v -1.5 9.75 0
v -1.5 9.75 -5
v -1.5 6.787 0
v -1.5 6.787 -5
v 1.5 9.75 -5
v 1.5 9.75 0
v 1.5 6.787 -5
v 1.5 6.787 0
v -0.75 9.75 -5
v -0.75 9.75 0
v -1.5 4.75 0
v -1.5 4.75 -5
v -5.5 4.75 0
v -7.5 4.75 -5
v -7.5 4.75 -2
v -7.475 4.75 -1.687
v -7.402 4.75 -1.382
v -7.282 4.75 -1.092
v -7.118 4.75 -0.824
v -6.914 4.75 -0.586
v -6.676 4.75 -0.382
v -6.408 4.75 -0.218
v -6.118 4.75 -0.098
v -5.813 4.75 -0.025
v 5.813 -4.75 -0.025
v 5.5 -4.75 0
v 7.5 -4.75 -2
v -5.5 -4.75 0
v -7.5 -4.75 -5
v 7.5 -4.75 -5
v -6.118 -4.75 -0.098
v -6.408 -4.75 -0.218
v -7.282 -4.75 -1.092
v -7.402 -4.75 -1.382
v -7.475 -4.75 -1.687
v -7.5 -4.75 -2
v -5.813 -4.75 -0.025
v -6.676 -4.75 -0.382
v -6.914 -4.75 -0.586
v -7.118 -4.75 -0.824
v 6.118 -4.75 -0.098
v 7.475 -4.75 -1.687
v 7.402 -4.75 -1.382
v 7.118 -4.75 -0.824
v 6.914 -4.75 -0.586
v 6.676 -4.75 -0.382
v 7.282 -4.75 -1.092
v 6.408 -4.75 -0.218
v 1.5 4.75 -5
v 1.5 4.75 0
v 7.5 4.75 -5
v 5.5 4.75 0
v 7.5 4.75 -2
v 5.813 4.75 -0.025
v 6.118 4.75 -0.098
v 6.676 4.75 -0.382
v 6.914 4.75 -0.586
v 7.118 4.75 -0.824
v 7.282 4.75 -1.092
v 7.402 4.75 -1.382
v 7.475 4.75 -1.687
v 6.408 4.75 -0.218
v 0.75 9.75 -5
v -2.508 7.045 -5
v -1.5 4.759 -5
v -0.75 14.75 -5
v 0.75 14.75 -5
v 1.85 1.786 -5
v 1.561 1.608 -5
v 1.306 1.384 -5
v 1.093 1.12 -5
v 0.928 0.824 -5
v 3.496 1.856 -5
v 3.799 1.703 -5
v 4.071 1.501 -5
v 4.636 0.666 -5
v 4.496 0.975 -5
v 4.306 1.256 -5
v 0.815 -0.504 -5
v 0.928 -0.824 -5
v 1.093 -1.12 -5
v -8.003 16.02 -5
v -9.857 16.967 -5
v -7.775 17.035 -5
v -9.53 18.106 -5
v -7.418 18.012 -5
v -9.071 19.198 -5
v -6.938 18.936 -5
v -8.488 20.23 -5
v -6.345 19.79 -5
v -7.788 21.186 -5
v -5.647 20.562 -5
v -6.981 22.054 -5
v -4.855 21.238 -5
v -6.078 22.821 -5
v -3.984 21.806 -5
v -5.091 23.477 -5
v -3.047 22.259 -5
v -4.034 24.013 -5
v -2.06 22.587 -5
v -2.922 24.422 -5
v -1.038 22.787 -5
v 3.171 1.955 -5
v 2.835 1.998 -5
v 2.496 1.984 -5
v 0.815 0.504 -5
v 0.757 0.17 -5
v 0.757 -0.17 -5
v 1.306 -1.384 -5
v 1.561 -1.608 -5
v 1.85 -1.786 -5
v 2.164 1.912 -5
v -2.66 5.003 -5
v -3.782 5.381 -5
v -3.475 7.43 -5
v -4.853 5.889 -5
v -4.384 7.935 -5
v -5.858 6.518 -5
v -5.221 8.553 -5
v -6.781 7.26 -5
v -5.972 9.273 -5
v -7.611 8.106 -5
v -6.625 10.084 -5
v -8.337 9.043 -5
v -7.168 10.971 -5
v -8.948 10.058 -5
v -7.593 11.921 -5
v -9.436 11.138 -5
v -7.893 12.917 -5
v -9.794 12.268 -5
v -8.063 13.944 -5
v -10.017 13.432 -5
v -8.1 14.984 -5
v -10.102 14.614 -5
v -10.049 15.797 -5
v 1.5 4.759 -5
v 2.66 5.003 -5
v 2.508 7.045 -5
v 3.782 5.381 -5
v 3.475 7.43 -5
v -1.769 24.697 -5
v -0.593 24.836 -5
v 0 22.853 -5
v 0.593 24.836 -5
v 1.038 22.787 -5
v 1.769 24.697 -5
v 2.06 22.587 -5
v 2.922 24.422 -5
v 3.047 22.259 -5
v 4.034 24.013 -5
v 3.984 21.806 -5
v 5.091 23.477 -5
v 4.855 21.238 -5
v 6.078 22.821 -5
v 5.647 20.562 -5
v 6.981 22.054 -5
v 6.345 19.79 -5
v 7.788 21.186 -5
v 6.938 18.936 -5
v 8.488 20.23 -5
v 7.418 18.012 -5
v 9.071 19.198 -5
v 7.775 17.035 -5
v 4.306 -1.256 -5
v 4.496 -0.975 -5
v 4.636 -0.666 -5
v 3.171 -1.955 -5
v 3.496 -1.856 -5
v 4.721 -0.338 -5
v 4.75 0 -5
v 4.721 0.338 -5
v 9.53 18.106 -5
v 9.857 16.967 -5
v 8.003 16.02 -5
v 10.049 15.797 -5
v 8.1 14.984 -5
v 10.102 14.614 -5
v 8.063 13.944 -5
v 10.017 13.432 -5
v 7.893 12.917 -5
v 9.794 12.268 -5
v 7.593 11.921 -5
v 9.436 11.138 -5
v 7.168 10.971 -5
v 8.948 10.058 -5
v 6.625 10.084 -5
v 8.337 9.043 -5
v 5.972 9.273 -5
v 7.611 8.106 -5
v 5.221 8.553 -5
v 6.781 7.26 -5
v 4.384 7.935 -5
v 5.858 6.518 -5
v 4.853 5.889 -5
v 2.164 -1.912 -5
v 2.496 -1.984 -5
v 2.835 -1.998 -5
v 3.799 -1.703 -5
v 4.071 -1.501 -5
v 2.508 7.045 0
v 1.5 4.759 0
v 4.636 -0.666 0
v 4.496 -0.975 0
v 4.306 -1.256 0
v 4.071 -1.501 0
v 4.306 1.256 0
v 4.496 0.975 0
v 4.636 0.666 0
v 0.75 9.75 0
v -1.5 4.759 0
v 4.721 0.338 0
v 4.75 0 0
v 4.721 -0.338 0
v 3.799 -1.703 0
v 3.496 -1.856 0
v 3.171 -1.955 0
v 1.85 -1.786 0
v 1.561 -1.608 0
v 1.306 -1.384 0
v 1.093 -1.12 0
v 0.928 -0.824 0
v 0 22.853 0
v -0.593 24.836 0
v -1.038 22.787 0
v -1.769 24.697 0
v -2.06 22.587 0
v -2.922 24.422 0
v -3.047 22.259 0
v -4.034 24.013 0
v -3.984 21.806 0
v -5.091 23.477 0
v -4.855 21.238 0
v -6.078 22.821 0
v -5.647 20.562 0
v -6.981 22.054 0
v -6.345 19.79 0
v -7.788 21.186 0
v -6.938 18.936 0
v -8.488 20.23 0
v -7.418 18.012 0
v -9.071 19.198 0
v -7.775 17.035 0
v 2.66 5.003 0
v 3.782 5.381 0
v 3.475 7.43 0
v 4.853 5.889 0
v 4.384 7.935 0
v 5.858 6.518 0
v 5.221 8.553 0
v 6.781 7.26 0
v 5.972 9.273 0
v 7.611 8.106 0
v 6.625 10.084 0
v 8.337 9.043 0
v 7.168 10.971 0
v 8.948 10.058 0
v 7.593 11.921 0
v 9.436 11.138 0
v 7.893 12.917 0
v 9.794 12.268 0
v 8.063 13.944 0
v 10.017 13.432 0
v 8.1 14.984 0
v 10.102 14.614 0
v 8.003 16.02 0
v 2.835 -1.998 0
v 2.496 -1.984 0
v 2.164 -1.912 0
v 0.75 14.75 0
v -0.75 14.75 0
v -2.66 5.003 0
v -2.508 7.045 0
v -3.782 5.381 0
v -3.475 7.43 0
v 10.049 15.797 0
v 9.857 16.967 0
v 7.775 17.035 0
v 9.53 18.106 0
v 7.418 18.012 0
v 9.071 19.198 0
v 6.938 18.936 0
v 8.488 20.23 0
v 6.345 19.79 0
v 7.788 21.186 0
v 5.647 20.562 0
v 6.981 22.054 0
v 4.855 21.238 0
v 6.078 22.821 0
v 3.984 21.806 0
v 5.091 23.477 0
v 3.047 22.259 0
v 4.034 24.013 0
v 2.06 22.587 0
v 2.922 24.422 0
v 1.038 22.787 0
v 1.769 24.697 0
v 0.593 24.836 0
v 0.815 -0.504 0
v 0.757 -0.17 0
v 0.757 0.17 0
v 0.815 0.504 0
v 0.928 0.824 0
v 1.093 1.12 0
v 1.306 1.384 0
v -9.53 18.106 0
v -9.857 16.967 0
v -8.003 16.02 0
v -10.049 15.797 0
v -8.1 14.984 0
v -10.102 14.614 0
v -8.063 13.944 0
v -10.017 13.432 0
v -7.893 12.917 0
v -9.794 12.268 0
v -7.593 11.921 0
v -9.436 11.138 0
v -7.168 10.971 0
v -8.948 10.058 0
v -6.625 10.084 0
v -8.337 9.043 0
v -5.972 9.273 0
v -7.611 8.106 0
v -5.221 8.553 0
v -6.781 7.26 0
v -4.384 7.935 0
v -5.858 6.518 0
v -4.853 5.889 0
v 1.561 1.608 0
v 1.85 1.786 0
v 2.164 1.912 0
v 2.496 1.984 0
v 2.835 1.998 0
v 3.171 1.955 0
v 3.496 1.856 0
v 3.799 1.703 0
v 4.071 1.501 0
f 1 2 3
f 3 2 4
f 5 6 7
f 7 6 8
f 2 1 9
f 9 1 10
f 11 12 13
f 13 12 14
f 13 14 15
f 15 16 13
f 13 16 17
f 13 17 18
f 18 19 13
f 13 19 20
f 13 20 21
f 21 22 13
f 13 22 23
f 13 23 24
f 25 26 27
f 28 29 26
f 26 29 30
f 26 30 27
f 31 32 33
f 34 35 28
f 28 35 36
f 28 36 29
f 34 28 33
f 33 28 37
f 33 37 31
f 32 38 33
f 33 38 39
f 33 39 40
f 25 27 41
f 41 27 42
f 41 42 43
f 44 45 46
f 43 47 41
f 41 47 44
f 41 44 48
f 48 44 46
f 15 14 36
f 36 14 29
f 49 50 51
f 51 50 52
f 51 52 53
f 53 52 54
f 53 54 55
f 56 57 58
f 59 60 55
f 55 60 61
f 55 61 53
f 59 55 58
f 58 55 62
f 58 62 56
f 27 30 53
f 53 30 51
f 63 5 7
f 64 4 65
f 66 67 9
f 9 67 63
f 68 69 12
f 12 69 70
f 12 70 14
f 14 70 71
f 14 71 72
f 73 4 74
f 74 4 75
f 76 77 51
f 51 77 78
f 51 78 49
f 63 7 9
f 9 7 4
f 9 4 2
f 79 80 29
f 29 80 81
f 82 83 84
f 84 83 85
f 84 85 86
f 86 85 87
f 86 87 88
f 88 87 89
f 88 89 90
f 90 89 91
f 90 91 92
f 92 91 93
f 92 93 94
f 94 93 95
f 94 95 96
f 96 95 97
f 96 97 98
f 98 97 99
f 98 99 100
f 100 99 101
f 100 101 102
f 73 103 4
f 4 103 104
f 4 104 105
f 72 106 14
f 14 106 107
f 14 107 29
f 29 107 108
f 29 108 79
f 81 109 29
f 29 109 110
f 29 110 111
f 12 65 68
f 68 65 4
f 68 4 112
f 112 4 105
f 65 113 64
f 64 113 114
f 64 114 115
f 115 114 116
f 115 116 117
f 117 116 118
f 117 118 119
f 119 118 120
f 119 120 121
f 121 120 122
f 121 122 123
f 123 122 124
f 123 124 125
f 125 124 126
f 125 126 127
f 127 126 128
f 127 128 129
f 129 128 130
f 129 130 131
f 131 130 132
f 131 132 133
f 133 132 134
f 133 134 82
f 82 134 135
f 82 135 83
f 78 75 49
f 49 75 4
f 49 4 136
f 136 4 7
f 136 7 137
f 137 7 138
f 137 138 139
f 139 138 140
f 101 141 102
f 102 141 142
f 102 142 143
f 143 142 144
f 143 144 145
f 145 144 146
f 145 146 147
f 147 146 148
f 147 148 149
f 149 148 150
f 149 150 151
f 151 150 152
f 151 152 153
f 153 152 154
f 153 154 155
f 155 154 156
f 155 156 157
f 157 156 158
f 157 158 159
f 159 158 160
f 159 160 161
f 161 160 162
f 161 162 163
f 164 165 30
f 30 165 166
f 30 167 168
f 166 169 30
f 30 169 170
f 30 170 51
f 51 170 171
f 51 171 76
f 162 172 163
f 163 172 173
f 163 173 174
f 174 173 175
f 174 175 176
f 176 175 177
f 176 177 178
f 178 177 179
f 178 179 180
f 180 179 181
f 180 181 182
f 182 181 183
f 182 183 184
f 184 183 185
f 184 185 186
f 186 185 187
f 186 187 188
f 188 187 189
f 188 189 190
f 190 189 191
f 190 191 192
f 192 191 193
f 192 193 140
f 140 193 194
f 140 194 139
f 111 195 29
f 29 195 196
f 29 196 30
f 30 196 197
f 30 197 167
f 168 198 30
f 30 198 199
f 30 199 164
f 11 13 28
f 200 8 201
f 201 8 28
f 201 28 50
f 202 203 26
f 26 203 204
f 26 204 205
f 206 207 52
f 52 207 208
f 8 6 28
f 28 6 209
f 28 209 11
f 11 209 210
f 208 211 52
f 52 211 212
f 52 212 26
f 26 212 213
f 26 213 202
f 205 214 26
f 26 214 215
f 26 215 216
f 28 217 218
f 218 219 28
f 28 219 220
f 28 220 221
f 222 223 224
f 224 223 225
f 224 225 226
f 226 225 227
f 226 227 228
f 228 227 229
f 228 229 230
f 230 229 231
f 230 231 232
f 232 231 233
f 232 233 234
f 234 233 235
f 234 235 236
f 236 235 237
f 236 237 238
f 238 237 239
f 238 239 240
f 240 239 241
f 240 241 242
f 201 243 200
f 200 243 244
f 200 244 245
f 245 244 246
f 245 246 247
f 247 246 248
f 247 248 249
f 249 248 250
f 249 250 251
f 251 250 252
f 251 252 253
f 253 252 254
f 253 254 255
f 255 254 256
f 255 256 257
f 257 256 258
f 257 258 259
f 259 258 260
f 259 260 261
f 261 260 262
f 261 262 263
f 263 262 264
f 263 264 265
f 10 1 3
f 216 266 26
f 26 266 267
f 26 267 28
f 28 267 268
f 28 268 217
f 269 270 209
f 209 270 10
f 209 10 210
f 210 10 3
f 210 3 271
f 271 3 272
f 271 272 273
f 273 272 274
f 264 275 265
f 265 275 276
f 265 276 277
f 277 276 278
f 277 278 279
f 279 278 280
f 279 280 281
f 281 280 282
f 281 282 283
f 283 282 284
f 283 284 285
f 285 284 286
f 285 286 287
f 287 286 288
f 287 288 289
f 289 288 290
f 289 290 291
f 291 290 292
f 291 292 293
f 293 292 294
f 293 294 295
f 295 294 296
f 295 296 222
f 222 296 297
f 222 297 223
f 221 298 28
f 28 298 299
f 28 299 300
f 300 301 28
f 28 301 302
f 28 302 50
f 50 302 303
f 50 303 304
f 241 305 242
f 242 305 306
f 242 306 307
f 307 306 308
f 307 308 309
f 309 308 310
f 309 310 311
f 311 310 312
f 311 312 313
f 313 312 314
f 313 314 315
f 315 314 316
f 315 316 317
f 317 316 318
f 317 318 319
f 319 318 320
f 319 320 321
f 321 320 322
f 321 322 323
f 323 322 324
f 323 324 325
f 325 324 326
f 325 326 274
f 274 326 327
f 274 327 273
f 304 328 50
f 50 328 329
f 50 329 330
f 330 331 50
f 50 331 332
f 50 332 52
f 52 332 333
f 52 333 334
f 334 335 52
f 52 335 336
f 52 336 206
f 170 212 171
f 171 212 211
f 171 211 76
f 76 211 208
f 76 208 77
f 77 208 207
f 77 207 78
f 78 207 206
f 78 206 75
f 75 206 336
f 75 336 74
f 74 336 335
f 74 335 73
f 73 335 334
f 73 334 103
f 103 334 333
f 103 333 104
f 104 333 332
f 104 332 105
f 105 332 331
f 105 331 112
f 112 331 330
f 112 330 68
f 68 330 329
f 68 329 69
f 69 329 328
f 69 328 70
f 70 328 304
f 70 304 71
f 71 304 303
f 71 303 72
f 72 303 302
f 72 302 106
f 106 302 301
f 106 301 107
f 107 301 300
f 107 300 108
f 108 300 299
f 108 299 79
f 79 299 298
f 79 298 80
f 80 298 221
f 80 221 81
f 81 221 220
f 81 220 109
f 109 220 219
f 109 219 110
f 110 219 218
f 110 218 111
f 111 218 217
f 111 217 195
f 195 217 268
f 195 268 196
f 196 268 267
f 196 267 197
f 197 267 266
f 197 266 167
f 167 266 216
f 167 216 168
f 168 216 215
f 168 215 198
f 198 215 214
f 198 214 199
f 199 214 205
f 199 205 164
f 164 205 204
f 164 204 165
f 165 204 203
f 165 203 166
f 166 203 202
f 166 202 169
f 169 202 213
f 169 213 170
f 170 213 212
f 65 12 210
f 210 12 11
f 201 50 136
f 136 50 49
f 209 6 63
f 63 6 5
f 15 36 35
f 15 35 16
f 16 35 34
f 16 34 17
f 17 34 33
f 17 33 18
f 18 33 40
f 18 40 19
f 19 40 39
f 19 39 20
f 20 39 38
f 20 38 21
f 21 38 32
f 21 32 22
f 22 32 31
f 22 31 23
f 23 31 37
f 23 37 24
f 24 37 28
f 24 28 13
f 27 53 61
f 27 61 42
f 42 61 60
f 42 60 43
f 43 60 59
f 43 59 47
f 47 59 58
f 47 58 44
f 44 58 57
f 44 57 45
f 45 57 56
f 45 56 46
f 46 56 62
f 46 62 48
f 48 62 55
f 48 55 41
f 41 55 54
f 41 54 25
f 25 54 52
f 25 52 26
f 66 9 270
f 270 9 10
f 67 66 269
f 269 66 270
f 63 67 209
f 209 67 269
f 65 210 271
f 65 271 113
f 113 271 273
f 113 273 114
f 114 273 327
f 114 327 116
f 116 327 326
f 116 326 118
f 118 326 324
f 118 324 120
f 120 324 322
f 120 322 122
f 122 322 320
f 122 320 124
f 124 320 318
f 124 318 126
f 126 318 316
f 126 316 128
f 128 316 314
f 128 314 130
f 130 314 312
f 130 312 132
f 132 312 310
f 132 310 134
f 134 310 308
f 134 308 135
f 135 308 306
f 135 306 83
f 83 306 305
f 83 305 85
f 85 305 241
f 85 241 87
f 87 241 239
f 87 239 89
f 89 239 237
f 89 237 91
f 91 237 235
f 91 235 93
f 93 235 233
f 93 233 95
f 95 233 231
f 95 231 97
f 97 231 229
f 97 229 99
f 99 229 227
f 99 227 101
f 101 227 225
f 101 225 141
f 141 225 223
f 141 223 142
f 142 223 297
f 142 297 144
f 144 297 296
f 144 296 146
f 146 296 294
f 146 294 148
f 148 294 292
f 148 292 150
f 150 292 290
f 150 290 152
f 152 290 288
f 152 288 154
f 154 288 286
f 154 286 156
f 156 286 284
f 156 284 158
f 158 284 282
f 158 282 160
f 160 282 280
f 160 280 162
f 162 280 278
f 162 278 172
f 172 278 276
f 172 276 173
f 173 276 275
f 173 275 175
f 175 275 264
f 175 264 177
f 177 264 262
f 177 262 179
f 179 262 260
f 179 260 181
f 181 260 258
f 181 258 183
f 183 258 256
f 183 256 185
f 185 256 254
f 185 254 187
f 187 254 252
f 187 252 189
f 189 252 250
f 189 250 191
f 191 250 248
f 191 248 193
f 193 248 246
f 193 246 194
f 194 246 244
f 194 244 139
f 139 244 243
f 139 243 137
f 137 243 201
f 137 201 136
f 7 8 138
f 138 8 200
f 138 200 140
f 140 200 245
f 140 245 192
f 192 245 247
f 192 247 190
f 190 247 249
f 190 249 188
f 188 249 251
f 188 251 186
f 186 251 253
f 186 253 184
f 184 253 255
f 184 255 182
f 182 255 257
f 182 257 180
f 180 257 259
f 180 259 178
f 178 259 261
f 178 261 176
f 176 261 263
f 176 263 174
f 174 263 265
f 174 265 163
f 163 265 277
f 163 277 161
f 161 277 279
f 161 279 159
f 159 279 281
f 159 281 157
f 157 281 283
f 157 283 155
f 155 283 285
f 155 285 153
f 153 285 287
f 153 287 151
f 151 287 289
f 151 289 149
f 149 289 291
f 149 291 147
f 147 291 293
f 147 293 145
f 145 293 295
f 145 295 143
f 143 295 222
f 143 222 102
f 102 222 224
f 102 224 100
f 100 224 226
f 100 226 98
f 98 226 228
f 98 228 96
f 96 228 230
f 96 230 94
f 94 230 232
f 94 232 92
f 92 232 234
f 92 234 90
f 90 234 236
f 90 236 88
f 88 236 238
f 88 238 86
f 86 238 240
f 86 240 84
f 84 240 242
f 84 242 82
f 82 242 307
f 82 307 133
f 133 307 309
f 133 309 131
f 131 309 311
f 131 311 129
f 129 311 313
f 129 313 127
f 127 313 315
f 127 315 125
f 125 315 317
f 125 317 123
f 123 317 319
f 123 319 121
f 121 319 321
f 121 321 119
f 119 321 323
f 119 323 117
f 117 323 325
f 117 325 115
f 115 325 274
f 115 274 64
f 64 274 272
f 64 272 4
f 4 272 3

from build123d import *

# Parameters (mm, degrees)
SKETCH1_W               = 15
SKETCH1_H               = 9.5
BOSS_EXTRUDE2_DEPTH     = 5
CUT_EXTRUDE1_DEPTH      = 11.188841936
CUT_EXTRUDE1_DEPTH_BACK = 11.188841936
SKETCH3_R               = 2
SKETCH4_W               = 3
SKETCH4_H               = 5
BOSS_EXTRUDE3_DEPTH     = 5
FILLET1_R               = 2
SKETCH5_W               = 1.5
SKETCH5_H               = 5
BOSS_EXTRUDE4_DEPTH     = 5
SKETCH6_R               = 10.103320079
SKETCH6_R_2             = 8.103320079
BOSS_EXTRUDE5_DEPTH     = 5


with BuildPart() as part:
    # Sketch1 → Boss-Extrude2 (new body)
    with BuildSketch(Plane.XY):
        Rectangle(SKETCH1_W, SKETCH1_H)
    extrude(amount=-BOSS_EXTRUDE2_DEPTH)

    # Sketch3 → Cut-Extrude1 (cut, two sides: drawn at the far end of the back side and taken through both)
    with BuildSketch(Plane.XY.offset(-CUT_EXTRUDE1_DEPTH_BACK)):
        with Locations((2.75, 0)):
            Circle(SKETCH3_R)
    extrude(amount=CUT_EXTRUDE1_DEPTH + CUT_EXTRUDE1_DEPTH_BACK, mode=Mode.SUBTRACT)

    # Sketch4 → Boss-Extrude3 (add)
    with BuildSketch(Plane(origin=(0, 4.75, 0), x_dir=(1, 0, 0), z_dir=(0, 1, 0))):
        with Locations((0, 2.5)):
            Rectangle(SKETCH4_W, SKETCH4_H)
    extrude(amount=BOSS_EXTRUDE3_DEPTH)

    # Fillet1
    fillet1_edges = [part.edges().sort_by_distance(p)[0] for p in [
        (7.5, 0, 0),
        (-7.5, 0, 0),
    ]]
    fillet(fillet1_edges, radius=FILLET1_R)

    # Sketch5 → Boss-Extrude4 (add)
    with BuildSketch(Plane.XY):
        with Locations((0, 12.25)):
            Rectangle(SKETCH5_W, SKETCH5_H)
    extrude(amount=-BOSS_EXTRUDE4_DEPTH)

    # Sketch6 → Boss-Extrude5 (add)
    with BuildSketch(Plane.XY):
        with Locations((0, 14.75)):
            Circle(SKETCH6_R)
        with Locations((0, 14.75)):
            Circle(SKETCH6_R_2, mode=Mode.SUBTRACT)
    extrude(amount=-BOSS_EXTRUDE5_DEPTH)


solid = part.part
